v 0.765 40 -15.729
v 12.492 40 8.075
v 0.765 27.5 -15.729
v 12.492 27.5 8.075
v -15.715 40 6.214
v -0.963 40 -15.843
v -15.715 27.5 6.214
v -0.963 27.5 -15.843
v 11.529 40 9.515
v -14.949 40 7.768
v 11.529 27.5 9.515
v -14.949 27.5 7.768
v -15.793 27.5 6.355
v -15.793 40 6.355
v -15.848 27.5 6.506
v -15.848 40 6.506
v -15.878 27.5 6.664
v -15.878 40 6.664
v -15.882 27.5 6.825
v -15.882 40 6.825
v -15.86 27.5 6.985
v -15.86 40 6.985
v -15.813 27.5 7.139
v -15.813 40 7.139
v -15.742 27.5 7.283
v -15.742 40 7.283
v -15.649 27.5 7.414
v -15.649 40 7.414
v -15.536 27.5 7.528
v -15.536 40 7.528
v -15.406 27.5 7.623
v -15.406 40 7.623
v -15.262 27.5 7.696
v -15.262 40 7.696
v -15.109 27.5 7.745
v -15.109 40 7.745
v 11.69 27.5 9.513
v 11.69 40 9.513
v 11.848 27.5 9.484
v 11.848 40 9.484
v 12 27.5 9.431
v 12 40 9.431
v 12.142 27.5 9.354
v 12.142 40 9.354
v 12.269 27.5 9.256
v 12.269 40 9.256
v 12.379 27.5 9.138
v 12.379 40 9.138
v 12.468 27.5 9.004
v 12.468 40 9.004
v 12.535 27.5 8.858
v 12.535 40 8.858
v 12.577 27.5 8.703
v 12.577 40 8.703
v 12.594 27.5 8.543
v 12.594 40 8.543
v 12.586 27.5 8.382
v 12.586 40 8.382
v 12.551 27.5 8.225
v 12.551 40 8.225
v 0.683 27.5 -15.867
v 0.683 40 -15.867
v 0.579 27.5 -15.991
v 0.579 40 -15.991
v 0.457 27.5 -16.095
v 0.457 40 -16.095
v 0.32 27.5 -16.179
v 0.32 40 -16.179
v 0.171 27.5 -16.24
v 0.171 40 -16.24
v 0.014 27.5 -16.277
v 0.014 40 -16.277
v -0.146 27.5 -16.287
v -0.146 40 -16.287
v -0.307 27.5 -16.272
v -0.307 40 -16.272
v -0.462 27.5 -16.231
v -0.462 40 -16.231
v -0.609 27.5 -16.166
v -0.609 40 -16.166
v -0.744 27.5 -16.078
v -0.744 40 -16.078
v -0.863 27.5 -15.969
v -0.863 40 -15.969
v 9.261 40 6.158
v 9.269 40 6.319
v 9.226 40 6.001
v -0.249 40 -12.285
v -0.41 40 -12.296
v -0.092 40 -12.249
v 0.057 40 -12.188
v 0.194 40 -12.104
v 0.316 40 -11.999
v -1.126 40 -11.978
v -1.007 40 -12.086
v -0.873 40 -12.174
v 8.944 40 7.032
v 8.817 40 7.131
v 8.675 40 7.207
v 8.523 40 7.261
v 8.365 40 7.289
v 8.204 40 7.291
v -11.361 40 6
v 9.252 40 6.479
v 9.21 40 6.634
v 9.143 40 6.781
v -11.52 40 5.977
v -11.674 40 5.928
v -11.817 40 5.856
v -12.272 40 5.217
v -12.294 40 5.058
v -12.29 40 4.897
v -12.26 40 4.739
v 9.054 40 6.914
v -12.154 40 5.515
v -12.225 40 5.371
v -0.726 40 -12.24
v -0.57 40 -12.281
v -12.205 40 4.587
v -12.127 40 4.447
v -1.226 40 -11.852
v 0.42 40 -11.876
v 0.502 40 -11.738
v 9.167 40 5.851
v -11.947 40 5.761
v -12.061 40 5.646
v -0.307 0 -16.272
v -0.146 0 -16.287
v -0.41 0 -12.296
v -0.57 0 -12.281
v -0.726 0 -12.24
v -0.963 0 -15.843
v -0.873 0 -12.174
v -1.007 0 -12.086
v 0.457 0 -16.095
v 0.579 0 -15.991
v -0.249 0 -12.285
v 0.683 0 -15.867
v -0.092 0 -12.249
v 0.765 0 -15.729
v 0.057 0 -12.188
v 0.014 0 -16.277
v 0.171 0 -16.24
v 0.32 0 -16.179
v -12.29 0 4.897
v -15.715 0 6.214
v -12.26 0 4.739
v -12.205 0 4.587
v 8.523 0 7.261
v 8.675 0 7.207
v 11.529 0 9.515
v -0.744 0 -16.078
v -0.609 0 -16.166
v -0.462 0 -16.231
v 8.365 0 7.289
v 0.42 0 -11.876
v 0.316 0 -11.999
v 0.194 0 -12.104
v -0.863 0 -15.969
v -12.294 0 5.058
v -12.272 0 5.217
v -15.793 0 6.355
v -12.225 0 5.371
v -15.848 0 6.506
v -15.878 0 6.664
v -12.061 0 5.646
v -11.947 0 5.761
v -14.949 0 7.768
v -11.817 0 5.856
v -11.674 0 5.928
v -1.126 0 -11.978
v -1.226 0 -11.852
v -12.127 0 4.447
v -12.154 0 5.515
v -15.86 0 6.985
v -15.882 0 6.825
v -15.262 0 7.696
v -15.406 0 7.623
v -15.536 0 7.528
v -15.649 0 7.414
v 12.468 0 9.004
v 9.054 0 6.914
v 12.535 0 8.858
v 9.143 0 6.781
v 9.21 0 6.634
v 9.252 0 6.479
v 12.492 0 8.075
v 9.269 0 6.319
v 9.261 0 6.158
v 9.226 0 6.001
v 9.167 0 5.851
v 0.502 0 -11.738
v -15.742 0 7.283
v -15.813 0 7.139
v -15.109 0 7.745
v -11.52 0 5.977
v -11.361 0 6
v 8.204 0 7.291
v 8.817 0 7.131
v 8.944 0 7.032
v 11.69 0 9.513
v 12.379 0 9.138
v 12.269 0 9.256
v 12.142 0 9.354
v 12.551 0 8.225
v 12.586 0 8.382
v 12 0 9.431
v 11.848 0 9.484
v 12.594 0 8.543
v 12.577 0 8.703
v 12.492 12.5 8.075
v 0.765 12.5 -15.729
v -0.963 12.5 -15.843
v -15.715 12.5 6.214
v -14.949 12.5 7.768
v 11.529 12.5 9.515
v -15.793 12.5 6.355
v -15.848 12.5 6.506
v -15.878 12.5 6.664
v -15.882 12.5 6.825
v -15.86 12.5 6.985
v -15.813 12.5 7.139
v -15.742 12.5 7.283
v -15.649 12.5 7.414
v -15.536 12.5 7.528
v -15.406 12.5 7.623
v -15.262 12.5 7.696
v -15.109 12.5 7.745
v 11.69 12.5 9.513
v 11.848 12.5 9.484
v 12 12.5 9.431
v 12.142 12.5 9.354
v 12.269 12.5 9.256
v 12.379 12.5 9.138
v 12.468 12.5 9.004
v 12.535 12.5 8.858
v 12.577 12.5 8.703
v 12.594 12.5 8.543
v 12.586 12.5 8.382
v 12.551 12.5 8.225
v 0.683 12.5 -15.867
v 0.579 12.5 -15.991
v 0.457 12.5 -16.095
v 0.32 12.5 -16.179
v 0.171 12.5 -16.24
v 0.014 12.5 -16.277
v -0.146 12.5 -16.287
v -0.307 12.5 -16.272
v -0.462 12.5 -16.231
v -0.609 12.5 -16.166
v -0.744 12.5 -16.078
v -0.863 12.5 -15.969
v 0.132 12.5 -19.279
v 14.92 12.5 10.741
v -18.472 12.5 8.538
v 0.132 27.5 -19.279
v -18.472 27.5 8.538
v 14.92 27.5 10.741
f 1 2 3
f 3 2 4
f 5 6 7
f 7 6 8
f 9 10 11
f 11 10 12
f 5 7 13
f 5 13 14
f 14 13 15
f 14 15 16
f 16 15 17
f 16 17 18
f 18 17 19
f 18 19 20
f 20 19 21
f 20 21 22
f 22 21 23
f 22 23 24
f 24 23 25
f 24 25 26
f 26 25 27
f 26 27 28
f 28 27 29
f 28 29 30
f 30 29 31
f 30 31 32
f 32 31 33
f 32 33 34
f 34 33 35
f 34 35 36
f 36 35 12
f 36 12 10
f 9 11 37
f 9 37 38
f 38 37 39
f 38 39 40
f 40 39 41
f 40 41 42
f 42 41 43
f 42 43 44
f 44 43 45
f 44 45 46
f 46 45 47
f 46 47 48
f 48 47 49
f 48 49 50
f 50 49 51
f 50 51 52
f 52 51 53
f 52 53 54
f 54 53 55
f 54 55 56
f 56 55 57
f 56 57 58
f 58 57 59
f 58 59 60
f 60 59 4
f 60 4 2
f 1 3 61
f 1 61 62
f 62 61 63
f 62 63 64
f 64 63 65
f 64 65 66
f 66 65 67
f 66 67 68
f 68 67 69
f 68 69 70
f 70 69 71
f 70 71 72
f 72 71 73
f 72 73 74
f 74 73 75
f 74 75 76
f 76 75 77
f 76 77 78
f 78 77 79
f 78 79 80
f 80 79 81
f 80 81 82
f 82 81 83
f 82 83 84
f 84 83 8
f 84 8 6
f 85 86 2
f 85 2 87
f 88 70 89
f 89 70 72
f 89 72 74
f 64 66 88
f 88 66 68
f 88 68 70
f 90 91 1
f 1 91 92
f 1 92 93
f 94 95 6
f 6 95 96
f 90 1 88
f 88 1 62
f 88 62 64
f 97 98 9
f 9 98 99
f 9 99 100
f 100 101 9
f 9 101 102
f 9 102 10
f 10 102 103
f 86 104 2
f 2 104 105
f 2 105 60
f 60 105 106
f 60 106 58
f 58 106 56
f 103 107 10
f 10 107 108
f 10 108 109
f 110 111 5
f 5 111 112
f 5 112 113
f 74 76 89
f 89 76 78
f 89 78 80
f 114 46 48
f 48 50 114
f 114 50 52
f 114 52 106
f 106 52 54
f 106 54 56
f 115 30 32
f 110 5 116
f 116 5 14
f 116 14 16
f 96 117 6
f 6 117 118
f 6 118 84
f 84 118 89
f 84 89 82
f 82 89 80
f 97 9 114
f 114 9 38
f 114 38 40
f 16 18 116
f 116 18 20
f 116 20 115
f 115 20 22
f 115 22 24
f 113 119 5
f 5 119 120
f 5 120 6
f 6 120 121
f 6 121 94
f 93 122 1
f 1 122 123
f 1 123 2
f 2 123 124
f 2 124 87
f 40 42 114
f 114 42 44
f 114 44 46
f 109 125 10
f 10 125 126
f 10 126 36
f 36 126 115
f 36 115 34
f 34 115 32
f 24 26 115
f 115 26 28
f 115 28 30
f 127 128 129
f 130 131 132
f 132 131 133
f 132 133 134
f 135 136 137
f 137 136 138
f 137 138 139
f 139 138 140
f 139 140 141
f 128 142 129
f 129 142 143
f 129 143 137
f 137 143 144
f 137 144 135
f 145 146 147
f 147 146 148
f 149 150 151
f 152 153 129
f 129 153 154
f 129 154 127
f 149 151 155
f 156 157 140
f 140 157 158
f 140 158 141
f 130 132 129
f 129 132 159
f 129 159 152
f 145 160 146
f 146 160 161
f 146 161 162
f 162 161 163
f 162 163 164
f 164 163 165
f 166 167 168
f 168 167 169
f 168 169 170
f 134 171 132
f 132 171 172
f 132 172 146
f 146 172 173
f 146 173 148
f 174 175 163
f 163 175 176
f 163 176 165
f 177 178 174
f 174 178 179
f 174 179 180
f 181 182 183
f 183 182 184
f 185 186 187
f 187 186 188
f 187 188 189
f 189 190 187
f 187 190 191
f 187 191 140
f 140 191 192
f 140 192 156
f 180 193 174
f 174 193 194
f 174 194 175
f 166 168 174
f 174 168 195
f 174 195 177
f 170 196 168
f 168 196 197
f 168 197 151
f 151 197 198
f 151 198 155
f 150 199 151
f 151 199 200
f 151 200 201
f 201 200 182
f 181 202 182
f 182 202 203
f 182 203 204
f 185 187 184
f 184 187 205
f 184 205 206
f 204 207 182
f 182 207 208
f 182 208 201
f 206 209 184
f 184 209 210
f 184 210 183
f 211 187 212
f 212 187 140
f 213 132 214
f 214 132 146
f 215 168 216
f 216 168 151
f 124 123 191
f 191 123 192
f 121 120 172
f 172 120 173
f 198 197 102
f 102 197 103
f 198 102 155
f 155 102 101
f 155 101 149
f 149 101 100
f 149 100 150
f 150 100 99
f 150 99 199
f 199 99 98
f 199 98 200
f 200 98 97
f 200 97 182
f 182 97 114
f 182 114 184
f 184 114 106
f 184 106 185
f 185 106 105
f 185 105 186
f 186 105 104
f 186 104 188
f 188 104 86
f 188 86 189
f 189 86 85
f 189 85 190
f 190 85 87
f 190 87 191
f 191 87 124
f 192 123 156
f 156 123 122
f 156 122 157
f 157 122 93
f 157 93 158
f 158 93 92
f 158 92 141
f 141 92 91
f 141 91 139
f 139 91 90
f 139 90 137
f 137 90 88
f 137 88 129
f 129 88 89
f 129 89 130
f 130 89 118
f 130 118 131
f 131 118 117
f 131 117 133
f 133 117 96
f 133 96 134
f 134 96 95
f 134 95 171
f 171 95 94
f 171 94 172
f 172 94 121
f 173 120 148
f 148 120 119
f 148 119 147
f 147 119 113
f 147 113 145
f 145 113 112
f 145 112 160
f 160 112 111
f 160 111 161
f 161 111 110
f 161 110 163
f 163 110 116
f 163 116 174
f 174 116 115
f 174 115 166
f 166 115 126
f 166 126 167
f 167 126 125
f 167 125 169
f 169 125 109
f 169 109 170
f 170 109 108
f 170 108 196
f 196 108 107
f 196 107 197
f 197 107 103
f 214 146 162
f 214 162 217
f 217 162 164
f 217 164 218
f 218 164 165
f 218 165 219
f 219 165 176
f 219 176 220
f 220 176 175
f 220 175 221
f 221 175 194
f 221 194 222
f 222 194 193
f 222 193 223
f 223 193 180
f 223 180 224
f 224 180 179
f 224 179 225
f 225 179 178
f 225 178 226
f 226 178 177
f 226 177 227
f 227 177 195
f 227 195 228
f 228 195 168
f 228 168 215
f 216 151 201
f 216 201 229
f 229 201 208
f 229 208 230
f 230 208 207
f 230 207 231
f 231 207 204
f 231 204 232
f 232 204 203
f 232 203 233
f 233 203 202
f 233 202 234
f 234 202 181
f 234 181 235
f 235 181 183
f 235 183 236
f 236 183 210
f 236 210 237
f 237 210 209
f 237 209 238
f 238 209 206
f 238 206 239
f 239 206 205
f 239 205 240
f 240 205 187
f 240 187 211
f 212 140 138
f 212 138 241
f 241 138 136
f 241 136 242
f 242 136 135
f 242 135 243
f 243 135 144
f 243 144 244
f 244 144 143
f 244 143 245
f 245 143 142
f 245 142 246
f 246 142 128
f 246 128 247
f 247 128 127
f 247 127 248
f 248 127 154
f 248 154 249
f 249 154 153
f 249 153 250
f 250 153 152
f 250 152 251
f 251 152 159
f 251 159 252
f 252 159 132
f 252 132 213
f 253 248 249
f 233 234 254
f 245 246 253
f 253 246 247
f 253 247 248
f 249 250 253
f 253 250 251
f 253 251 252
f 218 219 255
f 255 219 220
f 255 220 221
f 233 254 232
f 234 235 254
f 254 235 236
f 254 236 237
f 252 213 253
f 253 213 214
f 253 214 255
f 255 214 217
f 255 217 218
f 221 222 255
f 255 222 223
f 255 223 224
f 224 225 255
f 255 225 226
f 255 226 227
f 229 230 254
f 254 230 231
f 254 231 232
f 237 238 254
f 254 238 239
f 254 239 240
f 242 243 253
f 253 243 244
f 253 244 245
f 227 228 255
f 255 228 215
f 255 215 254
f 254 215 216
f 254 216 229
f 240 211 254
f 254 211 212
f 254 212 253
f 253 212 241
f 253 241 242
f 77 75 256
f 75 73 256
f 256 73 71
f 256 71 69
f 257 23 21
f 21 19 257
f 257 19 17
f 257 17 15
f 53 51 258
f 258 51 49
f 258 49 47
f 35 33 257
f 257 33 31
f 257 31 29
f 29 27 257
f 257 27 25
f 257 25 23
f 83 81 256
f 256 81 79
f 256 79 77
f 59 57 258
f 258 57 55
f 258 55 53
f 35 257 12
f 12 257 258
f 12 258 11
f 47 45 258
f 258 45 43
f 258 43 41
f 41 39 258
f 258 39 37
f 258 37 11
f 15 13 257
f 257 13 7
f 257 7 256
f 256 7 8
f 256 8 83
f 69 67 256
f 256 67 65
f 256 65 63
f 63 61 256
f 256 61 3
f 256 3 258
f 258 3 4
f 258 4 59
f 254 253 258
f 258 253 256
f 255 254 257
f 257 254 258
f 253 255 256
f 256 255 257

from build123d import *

# Parameters (mm, degrees)
BOSS_EXTRUDE1_DEPTH = 40
FILLET1_R           = 1
BOSS_EXTRUDE2_DEPTH = 7.5


with BuildPart() as part:
    # Sketch1 → Boss-Extrude1 (new body)
    with BuildSketch(Plane(origin=(0, 0, 0), x_dir=(1, 0, 0), z_dir=(0, 1, 0))):
        Polygon((0, 17.282938314), (-16.6777552, -7.65403186), (13.257172065, -9.628906454), align=None)
        Polygon((-0.263316613, 13.291614679), (-13.089509231, -5.886408918), (9.932242708, -7.405205761), align=None, mode=Mode.SUBTRACT)
    extrude(amount=BOSS_EXTRUDE1_DEPTH)

    # Fillet1
    fillet1_edges = [part.edges().sort_by_distance(p)[0] for p in [
        (9.932242708, 20, 7.405205761),
        (-0.263316613, 20, -13.291614679),
        (-13.089509231, 20, 5.886408918),
        (13.257172065, 20, 9.628906454),
        (-16.6777552, 20, 7.65403186),
        (0, 20, -17.282938314),
    ]]
    fillet(fillet1_edges, radius=FILLET1_R)

    # Sketch2 → Boss-Extrude2 (add, symmetric)
    with BuildSketch(Plane(origin=(0, 20, 0), x_dir=(-1, 0, 0), z_dir=(0, -1, 0))):
        Polygon((18.471878185, -8.537843331), (-14.919636743, -10.740756801), (-0.131658306, 19.278600132), align=None)
        with BuildLine():
            Line((-12.491768879, -8.075150372), (-0.765403186, 15.729182232))
            ThreePointArc((-0.765403186, 15.729182232), (0.065829153, 16.285107406), (0.962890645, 15.84320167))
            Line((0.962890645, 15.84320167), (15.714864555, -6.214295216))
            ThreePointArc((15.714864555, -6.214295216), (15.780693708, -7.212126125), (14.949461369, -7.768051298))
            Line((14.949461369, -7.768051298), (-11.528878233, -9.514887016))
            ThreePointArc((-11.528878233, -9.514887016), (-12.425939725, -9.072981281), (-12.491768879, -8.075150372))
        make_face(mode=Mode.SUBTRACT)
    extrude(amount=BOSS_EXTRUDE2_DEPTH, both=True)


solid = part.part
